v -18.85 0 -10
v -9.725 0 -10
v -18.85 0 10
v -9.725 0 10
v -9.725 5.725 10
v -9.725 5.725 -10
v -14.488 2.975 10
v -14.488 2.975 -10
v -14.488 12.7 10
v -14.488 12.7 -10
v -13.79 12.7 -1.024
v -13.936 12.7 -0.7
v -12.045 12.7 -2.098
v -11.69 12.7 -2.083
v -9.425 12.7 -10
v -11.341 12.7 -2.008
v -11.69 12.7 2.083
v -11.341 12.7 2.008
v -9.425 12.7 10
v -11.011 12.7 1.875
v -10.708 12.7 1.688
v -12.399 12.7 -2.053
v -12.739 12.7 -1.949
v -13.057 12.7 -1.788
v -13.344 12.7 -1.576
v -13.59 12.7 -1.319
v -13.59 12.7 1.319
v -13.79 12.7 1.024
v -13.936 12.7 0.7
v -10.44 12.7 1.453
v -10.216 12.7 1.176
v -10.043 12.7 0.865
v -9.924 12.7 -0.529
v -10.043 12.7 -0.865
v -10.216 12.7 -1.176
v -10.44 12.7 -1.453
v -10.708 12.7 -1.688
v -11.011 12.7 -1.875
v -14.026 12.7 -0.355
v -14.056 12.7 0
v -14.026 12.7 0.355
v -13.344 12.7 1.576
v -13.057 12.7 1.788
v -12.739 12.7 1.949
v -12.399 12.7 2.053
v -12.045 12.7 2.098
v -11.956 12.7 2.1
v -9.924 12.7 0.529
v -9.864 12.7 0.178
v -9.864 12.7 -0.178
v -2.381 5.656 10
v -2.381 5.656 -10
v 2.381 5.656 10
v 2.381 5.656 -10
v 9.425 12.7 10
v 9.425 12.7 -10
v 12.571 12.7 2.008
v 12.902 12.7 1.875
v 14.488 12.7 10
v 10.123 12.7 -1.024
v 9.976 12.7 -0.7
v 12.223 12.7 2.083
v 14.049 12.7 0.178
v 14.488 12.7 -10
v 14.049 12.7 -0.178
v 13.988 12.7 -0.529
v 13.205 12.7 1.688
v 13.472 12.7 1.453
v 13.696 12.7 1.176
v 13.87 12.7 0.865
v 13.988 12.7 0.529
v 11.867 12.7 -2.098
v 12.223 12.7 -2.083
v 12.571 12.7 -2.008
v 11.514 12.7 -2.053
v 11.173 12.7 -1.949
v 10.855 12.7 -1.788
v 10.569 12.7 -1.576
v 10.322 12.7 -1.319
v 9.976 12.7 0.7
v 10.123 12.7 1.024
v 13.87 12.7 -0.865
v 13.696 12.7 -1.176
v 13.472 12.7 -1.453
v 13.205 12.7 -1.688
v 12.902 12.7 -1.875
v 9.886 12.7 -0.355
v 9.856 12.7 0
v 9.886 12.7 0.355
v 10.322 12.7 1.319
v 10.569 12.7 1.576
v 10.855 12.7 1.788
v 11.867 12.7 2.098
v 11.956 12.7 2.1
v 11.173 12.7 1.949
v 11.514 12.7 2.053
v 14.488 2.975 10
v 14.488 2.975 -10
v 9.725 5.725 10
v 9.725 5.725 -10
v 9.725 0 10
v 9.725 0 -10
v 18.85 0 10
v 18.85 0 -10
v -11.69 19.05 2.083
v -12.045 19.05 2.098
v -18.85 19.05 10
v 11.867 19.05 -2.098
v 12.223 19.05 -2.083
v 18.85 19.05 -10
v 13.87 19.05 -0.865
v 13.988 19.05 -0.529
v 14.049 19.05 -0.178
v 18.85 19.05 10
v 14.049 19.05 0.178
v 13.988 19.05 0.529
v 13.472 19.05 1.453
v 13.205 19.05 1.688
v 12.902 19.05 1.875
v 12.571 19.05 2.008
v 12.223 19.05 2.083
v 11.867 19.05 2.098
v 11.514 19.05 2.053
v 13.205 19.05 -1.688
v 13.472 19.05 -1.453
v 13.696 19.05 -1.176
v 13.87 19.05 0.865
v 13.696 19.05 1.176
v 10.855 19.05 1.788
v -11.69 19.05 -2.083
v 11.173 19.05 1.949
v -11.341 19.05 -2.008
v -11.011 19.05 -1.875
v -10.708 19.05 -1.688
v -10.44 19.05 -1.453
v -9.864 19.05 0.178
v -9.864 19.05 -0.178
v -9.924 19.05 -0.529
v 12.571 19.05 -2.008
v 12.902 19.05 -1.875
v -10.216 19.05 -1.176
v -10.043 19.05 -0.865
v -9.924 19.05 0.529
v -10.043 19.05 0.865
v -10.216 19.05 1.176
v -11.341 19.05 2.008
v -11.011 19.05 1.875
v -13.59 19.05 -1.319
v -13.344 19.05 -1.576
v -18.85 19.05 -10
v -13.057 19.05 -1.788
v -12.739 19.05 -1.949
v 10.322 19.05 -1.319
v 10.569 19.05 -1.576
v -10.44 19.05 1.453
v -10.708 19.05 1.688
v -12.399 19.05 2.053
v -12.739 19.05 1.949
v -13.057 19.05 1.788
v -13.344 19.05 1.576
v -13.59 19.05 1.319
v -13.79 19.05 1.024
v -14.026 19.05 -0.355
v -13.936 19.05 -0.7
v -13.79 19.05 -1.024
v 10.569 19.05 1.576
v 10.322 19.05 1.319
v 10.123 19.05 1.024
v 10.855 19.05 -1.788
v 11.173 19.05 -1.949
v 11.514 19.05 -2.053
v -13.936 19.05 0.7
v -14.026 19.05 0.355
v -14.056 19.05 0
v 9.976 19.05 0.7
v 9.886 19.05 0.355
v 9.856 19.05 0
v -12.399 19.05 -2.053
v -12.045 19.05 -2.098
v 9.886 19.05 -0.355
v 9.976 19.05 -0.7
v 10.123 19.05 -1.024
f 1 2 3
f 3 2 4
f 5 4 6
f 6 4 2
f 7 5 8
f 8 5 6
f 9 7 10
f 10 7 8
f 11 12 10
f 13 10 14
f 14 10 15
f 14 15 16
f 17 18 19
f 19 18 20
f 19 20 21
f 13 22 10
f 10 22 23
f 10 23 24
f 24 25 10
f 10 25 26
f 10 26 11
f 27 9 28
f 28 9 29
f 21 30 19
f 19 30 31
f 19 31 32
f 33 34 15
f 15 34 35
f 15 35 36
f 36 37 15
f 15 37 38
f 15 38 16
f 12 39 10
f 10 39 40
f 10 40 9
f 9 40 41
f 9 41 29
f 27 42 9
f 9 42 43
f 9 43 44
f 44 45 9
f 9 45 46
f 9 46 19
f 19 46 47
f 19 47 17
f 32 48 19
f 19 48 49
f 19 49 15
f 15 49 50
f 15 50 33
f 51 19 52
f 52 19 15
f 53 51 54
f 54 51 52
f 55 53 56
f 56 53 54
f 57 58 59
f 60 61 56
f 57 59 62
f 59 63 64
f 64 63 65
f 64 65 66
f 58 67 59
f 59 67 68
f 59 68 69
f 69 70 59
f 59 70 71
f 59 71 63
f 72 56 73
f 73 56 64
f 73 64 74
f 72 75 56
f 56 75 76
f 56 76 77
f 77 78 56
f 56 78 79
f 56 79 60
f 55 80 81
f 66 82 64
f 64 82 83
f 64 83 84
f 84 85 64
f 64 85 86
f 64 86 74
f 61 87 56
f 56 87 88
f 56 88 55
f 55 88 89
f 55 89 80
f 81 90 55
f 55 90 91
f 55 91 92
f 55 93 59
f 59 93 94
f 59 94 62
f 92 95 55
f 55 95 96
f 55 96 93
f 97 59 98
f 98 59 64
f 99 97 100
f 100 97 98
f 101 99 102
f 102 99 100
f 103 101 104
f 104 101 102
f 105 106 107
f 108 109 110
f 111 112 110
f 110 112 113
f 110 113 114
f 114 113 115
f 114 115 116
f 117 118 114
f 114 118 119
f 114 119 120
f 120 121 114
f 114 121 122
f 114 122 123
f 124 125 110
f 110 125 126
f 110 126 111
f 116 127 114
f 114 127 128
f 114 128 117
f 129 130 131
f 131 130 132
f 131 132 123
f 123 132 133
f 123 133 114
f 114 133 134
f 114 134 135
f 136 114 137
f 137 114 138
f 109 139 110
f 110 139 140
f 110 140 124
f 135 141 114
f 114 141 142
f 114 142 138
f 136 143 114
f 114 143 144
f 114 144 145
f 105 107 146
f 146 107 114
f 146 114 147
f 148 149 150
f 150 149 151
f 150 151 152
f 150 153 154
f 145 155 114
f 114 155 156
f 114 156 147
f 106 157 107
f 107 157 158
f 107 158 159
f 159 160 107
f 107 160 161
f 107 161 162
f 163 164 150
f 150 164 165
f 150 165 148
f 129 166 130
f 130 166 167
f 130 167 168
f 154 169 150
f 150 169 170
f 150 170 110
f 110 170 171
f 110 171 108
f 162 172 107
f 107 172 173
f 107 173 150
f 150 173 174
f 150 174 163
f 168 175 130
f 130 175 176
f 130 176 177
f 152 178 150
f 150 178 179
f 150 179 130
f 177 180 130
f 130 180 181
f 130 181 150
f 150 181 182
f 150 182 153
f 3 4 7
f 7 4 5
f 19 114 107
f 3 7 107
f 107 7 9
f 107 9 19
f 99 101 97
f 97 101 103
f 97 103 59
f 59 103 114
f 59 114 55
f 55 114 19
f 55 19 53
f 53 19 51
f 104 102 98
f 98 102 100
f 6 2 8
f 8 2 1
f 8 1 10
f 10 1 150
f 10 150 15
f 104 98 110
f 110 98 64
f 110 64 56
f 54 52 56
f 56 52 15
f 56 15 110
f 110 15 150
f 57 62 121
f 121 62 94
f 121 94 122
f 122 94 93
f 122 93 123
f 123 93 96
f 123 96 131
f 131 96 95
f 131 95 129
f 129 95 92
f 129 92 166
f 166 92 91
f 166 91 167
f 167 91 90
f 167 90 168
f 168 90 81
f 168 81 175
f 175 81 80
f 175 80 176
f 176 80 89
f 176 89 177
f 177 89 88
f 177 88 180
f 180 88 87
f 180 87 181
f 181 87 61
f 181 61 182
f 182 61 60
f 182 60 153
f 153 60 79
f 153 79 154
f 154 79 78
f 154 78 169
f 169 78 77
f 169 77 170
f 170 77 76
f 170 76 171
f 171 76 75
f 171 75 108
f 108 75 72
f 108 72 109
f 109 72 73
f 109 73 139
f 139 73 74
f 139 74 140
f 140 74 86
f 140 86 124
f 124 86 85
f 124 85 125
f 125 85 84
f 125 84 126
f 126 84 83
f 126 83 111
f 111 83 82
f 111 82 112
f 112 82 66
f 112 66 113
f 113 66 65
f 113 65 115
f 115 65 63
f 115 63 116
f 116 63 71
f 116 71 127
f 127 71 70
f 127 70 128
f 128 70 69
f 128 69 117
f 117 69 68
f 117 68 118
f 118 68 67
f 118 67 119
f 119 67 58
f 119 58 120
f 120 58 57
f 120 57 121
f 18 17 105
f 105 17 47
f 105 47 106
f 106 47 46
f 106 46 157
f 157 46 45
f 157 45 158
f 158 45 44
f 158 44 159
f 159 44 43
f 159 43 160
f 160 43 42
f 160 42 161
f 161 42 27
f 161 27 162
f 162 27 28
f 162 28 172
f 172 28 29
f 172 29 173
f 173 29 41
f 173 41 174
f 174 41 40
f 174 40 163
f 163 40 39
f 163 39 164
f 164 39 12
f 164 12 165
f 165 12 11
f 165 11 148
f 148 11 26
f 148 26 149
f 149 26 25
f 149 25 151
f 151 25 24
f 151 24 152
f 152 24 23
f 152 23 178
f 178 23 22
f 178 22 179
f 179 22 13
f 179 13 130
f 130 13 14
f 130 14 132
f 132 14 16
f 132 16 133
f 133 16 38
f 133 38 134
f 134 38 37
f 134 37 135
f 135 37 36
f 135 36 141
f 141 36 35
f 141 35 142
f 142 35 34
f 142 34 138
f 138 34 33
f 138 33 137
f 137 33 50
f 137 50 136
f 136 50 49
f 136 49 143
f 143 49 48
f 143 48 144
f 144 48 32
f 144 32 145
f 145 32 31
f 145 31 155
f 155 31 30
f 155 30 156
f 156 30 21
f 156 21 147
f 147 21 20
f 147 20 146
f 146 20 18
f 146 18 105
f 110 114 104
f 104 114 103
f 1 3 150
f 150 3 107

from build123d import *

# Parameters (mm, degrees)
BOSS_EXTRUDE1_DEPTH     = 10
SKETCH2_R               = 2.1
CUT_EXTRUDE1_DEPTH      = 6.35
SKETCH3_W               = 9.725
SKETCH3_H               = 19.05
CUT_EXTRUDE2_DEPTH      = 11
CUT_EXTRUDE2_DEPTH_BACK = 11


with BuildPart() as part:
    # Sketch1 → Boss-Extrude1 (new body, symmetric)
    with BuildSketch(Plane.XY):
        Polygon((9.725, 0), (19.05, 0), (19.05, 19.05), (-19.05, 19.05), (-19.05, 0), (-9.725, 0), (-9.725, 5.724630657), (-14.4875, 2.975), (-14.4875, 12.7), (-9.425, 12.7), (-2.38125, 5.65625), (2.38125, 5.65625), (9.425, 12.7), (14.4875, 12.7), (14.4875, 2.975), (9.725, 5.724630657), align=None)
    extrude(amount=BOSS_EXTRUDE1_DEPTH, both=True)

    # Sketch2 → Cut-Extrude1 (cut)
    with BuildSketch(Plane(origin=(0, 19.05, 0), x_dir=(1, 0, 0), z_dir=(0, 1, 0))):
        with Locations((-11.95625, 0)):
            Circle(SKETCH2_R)
        with Locations((11.95625, 0)):
            Circle(SKETCH2_R)
    extrude(amount=-CUT_EXTRUDE1_DEPTH, mode=Mode.SUBTRACT)

    # Sketch3 → Cut-Extrude2 (cut, two sides)
    with BuildSketch(Plane.XY) as cut_extrude2_sk:
        with Locations((-23.7125, 9.525)):
            Rectangle(SKETCH3_W, SKETCH3_H)
        with Locations((23.7125, 9.525)):
            Rectangle(SKETCH3_W, SKETCH3_H)
    extrude(amount=CUT_EXTRUDE2_DEPTH, mode=Mode.SUBTRACT)
    extrude(cut_extrude2_sk.sketch, amount=-CUT_EXTRUDE2_DEPTH_BACK, mode=Mode.SUBTRACT)


solid = part.part
